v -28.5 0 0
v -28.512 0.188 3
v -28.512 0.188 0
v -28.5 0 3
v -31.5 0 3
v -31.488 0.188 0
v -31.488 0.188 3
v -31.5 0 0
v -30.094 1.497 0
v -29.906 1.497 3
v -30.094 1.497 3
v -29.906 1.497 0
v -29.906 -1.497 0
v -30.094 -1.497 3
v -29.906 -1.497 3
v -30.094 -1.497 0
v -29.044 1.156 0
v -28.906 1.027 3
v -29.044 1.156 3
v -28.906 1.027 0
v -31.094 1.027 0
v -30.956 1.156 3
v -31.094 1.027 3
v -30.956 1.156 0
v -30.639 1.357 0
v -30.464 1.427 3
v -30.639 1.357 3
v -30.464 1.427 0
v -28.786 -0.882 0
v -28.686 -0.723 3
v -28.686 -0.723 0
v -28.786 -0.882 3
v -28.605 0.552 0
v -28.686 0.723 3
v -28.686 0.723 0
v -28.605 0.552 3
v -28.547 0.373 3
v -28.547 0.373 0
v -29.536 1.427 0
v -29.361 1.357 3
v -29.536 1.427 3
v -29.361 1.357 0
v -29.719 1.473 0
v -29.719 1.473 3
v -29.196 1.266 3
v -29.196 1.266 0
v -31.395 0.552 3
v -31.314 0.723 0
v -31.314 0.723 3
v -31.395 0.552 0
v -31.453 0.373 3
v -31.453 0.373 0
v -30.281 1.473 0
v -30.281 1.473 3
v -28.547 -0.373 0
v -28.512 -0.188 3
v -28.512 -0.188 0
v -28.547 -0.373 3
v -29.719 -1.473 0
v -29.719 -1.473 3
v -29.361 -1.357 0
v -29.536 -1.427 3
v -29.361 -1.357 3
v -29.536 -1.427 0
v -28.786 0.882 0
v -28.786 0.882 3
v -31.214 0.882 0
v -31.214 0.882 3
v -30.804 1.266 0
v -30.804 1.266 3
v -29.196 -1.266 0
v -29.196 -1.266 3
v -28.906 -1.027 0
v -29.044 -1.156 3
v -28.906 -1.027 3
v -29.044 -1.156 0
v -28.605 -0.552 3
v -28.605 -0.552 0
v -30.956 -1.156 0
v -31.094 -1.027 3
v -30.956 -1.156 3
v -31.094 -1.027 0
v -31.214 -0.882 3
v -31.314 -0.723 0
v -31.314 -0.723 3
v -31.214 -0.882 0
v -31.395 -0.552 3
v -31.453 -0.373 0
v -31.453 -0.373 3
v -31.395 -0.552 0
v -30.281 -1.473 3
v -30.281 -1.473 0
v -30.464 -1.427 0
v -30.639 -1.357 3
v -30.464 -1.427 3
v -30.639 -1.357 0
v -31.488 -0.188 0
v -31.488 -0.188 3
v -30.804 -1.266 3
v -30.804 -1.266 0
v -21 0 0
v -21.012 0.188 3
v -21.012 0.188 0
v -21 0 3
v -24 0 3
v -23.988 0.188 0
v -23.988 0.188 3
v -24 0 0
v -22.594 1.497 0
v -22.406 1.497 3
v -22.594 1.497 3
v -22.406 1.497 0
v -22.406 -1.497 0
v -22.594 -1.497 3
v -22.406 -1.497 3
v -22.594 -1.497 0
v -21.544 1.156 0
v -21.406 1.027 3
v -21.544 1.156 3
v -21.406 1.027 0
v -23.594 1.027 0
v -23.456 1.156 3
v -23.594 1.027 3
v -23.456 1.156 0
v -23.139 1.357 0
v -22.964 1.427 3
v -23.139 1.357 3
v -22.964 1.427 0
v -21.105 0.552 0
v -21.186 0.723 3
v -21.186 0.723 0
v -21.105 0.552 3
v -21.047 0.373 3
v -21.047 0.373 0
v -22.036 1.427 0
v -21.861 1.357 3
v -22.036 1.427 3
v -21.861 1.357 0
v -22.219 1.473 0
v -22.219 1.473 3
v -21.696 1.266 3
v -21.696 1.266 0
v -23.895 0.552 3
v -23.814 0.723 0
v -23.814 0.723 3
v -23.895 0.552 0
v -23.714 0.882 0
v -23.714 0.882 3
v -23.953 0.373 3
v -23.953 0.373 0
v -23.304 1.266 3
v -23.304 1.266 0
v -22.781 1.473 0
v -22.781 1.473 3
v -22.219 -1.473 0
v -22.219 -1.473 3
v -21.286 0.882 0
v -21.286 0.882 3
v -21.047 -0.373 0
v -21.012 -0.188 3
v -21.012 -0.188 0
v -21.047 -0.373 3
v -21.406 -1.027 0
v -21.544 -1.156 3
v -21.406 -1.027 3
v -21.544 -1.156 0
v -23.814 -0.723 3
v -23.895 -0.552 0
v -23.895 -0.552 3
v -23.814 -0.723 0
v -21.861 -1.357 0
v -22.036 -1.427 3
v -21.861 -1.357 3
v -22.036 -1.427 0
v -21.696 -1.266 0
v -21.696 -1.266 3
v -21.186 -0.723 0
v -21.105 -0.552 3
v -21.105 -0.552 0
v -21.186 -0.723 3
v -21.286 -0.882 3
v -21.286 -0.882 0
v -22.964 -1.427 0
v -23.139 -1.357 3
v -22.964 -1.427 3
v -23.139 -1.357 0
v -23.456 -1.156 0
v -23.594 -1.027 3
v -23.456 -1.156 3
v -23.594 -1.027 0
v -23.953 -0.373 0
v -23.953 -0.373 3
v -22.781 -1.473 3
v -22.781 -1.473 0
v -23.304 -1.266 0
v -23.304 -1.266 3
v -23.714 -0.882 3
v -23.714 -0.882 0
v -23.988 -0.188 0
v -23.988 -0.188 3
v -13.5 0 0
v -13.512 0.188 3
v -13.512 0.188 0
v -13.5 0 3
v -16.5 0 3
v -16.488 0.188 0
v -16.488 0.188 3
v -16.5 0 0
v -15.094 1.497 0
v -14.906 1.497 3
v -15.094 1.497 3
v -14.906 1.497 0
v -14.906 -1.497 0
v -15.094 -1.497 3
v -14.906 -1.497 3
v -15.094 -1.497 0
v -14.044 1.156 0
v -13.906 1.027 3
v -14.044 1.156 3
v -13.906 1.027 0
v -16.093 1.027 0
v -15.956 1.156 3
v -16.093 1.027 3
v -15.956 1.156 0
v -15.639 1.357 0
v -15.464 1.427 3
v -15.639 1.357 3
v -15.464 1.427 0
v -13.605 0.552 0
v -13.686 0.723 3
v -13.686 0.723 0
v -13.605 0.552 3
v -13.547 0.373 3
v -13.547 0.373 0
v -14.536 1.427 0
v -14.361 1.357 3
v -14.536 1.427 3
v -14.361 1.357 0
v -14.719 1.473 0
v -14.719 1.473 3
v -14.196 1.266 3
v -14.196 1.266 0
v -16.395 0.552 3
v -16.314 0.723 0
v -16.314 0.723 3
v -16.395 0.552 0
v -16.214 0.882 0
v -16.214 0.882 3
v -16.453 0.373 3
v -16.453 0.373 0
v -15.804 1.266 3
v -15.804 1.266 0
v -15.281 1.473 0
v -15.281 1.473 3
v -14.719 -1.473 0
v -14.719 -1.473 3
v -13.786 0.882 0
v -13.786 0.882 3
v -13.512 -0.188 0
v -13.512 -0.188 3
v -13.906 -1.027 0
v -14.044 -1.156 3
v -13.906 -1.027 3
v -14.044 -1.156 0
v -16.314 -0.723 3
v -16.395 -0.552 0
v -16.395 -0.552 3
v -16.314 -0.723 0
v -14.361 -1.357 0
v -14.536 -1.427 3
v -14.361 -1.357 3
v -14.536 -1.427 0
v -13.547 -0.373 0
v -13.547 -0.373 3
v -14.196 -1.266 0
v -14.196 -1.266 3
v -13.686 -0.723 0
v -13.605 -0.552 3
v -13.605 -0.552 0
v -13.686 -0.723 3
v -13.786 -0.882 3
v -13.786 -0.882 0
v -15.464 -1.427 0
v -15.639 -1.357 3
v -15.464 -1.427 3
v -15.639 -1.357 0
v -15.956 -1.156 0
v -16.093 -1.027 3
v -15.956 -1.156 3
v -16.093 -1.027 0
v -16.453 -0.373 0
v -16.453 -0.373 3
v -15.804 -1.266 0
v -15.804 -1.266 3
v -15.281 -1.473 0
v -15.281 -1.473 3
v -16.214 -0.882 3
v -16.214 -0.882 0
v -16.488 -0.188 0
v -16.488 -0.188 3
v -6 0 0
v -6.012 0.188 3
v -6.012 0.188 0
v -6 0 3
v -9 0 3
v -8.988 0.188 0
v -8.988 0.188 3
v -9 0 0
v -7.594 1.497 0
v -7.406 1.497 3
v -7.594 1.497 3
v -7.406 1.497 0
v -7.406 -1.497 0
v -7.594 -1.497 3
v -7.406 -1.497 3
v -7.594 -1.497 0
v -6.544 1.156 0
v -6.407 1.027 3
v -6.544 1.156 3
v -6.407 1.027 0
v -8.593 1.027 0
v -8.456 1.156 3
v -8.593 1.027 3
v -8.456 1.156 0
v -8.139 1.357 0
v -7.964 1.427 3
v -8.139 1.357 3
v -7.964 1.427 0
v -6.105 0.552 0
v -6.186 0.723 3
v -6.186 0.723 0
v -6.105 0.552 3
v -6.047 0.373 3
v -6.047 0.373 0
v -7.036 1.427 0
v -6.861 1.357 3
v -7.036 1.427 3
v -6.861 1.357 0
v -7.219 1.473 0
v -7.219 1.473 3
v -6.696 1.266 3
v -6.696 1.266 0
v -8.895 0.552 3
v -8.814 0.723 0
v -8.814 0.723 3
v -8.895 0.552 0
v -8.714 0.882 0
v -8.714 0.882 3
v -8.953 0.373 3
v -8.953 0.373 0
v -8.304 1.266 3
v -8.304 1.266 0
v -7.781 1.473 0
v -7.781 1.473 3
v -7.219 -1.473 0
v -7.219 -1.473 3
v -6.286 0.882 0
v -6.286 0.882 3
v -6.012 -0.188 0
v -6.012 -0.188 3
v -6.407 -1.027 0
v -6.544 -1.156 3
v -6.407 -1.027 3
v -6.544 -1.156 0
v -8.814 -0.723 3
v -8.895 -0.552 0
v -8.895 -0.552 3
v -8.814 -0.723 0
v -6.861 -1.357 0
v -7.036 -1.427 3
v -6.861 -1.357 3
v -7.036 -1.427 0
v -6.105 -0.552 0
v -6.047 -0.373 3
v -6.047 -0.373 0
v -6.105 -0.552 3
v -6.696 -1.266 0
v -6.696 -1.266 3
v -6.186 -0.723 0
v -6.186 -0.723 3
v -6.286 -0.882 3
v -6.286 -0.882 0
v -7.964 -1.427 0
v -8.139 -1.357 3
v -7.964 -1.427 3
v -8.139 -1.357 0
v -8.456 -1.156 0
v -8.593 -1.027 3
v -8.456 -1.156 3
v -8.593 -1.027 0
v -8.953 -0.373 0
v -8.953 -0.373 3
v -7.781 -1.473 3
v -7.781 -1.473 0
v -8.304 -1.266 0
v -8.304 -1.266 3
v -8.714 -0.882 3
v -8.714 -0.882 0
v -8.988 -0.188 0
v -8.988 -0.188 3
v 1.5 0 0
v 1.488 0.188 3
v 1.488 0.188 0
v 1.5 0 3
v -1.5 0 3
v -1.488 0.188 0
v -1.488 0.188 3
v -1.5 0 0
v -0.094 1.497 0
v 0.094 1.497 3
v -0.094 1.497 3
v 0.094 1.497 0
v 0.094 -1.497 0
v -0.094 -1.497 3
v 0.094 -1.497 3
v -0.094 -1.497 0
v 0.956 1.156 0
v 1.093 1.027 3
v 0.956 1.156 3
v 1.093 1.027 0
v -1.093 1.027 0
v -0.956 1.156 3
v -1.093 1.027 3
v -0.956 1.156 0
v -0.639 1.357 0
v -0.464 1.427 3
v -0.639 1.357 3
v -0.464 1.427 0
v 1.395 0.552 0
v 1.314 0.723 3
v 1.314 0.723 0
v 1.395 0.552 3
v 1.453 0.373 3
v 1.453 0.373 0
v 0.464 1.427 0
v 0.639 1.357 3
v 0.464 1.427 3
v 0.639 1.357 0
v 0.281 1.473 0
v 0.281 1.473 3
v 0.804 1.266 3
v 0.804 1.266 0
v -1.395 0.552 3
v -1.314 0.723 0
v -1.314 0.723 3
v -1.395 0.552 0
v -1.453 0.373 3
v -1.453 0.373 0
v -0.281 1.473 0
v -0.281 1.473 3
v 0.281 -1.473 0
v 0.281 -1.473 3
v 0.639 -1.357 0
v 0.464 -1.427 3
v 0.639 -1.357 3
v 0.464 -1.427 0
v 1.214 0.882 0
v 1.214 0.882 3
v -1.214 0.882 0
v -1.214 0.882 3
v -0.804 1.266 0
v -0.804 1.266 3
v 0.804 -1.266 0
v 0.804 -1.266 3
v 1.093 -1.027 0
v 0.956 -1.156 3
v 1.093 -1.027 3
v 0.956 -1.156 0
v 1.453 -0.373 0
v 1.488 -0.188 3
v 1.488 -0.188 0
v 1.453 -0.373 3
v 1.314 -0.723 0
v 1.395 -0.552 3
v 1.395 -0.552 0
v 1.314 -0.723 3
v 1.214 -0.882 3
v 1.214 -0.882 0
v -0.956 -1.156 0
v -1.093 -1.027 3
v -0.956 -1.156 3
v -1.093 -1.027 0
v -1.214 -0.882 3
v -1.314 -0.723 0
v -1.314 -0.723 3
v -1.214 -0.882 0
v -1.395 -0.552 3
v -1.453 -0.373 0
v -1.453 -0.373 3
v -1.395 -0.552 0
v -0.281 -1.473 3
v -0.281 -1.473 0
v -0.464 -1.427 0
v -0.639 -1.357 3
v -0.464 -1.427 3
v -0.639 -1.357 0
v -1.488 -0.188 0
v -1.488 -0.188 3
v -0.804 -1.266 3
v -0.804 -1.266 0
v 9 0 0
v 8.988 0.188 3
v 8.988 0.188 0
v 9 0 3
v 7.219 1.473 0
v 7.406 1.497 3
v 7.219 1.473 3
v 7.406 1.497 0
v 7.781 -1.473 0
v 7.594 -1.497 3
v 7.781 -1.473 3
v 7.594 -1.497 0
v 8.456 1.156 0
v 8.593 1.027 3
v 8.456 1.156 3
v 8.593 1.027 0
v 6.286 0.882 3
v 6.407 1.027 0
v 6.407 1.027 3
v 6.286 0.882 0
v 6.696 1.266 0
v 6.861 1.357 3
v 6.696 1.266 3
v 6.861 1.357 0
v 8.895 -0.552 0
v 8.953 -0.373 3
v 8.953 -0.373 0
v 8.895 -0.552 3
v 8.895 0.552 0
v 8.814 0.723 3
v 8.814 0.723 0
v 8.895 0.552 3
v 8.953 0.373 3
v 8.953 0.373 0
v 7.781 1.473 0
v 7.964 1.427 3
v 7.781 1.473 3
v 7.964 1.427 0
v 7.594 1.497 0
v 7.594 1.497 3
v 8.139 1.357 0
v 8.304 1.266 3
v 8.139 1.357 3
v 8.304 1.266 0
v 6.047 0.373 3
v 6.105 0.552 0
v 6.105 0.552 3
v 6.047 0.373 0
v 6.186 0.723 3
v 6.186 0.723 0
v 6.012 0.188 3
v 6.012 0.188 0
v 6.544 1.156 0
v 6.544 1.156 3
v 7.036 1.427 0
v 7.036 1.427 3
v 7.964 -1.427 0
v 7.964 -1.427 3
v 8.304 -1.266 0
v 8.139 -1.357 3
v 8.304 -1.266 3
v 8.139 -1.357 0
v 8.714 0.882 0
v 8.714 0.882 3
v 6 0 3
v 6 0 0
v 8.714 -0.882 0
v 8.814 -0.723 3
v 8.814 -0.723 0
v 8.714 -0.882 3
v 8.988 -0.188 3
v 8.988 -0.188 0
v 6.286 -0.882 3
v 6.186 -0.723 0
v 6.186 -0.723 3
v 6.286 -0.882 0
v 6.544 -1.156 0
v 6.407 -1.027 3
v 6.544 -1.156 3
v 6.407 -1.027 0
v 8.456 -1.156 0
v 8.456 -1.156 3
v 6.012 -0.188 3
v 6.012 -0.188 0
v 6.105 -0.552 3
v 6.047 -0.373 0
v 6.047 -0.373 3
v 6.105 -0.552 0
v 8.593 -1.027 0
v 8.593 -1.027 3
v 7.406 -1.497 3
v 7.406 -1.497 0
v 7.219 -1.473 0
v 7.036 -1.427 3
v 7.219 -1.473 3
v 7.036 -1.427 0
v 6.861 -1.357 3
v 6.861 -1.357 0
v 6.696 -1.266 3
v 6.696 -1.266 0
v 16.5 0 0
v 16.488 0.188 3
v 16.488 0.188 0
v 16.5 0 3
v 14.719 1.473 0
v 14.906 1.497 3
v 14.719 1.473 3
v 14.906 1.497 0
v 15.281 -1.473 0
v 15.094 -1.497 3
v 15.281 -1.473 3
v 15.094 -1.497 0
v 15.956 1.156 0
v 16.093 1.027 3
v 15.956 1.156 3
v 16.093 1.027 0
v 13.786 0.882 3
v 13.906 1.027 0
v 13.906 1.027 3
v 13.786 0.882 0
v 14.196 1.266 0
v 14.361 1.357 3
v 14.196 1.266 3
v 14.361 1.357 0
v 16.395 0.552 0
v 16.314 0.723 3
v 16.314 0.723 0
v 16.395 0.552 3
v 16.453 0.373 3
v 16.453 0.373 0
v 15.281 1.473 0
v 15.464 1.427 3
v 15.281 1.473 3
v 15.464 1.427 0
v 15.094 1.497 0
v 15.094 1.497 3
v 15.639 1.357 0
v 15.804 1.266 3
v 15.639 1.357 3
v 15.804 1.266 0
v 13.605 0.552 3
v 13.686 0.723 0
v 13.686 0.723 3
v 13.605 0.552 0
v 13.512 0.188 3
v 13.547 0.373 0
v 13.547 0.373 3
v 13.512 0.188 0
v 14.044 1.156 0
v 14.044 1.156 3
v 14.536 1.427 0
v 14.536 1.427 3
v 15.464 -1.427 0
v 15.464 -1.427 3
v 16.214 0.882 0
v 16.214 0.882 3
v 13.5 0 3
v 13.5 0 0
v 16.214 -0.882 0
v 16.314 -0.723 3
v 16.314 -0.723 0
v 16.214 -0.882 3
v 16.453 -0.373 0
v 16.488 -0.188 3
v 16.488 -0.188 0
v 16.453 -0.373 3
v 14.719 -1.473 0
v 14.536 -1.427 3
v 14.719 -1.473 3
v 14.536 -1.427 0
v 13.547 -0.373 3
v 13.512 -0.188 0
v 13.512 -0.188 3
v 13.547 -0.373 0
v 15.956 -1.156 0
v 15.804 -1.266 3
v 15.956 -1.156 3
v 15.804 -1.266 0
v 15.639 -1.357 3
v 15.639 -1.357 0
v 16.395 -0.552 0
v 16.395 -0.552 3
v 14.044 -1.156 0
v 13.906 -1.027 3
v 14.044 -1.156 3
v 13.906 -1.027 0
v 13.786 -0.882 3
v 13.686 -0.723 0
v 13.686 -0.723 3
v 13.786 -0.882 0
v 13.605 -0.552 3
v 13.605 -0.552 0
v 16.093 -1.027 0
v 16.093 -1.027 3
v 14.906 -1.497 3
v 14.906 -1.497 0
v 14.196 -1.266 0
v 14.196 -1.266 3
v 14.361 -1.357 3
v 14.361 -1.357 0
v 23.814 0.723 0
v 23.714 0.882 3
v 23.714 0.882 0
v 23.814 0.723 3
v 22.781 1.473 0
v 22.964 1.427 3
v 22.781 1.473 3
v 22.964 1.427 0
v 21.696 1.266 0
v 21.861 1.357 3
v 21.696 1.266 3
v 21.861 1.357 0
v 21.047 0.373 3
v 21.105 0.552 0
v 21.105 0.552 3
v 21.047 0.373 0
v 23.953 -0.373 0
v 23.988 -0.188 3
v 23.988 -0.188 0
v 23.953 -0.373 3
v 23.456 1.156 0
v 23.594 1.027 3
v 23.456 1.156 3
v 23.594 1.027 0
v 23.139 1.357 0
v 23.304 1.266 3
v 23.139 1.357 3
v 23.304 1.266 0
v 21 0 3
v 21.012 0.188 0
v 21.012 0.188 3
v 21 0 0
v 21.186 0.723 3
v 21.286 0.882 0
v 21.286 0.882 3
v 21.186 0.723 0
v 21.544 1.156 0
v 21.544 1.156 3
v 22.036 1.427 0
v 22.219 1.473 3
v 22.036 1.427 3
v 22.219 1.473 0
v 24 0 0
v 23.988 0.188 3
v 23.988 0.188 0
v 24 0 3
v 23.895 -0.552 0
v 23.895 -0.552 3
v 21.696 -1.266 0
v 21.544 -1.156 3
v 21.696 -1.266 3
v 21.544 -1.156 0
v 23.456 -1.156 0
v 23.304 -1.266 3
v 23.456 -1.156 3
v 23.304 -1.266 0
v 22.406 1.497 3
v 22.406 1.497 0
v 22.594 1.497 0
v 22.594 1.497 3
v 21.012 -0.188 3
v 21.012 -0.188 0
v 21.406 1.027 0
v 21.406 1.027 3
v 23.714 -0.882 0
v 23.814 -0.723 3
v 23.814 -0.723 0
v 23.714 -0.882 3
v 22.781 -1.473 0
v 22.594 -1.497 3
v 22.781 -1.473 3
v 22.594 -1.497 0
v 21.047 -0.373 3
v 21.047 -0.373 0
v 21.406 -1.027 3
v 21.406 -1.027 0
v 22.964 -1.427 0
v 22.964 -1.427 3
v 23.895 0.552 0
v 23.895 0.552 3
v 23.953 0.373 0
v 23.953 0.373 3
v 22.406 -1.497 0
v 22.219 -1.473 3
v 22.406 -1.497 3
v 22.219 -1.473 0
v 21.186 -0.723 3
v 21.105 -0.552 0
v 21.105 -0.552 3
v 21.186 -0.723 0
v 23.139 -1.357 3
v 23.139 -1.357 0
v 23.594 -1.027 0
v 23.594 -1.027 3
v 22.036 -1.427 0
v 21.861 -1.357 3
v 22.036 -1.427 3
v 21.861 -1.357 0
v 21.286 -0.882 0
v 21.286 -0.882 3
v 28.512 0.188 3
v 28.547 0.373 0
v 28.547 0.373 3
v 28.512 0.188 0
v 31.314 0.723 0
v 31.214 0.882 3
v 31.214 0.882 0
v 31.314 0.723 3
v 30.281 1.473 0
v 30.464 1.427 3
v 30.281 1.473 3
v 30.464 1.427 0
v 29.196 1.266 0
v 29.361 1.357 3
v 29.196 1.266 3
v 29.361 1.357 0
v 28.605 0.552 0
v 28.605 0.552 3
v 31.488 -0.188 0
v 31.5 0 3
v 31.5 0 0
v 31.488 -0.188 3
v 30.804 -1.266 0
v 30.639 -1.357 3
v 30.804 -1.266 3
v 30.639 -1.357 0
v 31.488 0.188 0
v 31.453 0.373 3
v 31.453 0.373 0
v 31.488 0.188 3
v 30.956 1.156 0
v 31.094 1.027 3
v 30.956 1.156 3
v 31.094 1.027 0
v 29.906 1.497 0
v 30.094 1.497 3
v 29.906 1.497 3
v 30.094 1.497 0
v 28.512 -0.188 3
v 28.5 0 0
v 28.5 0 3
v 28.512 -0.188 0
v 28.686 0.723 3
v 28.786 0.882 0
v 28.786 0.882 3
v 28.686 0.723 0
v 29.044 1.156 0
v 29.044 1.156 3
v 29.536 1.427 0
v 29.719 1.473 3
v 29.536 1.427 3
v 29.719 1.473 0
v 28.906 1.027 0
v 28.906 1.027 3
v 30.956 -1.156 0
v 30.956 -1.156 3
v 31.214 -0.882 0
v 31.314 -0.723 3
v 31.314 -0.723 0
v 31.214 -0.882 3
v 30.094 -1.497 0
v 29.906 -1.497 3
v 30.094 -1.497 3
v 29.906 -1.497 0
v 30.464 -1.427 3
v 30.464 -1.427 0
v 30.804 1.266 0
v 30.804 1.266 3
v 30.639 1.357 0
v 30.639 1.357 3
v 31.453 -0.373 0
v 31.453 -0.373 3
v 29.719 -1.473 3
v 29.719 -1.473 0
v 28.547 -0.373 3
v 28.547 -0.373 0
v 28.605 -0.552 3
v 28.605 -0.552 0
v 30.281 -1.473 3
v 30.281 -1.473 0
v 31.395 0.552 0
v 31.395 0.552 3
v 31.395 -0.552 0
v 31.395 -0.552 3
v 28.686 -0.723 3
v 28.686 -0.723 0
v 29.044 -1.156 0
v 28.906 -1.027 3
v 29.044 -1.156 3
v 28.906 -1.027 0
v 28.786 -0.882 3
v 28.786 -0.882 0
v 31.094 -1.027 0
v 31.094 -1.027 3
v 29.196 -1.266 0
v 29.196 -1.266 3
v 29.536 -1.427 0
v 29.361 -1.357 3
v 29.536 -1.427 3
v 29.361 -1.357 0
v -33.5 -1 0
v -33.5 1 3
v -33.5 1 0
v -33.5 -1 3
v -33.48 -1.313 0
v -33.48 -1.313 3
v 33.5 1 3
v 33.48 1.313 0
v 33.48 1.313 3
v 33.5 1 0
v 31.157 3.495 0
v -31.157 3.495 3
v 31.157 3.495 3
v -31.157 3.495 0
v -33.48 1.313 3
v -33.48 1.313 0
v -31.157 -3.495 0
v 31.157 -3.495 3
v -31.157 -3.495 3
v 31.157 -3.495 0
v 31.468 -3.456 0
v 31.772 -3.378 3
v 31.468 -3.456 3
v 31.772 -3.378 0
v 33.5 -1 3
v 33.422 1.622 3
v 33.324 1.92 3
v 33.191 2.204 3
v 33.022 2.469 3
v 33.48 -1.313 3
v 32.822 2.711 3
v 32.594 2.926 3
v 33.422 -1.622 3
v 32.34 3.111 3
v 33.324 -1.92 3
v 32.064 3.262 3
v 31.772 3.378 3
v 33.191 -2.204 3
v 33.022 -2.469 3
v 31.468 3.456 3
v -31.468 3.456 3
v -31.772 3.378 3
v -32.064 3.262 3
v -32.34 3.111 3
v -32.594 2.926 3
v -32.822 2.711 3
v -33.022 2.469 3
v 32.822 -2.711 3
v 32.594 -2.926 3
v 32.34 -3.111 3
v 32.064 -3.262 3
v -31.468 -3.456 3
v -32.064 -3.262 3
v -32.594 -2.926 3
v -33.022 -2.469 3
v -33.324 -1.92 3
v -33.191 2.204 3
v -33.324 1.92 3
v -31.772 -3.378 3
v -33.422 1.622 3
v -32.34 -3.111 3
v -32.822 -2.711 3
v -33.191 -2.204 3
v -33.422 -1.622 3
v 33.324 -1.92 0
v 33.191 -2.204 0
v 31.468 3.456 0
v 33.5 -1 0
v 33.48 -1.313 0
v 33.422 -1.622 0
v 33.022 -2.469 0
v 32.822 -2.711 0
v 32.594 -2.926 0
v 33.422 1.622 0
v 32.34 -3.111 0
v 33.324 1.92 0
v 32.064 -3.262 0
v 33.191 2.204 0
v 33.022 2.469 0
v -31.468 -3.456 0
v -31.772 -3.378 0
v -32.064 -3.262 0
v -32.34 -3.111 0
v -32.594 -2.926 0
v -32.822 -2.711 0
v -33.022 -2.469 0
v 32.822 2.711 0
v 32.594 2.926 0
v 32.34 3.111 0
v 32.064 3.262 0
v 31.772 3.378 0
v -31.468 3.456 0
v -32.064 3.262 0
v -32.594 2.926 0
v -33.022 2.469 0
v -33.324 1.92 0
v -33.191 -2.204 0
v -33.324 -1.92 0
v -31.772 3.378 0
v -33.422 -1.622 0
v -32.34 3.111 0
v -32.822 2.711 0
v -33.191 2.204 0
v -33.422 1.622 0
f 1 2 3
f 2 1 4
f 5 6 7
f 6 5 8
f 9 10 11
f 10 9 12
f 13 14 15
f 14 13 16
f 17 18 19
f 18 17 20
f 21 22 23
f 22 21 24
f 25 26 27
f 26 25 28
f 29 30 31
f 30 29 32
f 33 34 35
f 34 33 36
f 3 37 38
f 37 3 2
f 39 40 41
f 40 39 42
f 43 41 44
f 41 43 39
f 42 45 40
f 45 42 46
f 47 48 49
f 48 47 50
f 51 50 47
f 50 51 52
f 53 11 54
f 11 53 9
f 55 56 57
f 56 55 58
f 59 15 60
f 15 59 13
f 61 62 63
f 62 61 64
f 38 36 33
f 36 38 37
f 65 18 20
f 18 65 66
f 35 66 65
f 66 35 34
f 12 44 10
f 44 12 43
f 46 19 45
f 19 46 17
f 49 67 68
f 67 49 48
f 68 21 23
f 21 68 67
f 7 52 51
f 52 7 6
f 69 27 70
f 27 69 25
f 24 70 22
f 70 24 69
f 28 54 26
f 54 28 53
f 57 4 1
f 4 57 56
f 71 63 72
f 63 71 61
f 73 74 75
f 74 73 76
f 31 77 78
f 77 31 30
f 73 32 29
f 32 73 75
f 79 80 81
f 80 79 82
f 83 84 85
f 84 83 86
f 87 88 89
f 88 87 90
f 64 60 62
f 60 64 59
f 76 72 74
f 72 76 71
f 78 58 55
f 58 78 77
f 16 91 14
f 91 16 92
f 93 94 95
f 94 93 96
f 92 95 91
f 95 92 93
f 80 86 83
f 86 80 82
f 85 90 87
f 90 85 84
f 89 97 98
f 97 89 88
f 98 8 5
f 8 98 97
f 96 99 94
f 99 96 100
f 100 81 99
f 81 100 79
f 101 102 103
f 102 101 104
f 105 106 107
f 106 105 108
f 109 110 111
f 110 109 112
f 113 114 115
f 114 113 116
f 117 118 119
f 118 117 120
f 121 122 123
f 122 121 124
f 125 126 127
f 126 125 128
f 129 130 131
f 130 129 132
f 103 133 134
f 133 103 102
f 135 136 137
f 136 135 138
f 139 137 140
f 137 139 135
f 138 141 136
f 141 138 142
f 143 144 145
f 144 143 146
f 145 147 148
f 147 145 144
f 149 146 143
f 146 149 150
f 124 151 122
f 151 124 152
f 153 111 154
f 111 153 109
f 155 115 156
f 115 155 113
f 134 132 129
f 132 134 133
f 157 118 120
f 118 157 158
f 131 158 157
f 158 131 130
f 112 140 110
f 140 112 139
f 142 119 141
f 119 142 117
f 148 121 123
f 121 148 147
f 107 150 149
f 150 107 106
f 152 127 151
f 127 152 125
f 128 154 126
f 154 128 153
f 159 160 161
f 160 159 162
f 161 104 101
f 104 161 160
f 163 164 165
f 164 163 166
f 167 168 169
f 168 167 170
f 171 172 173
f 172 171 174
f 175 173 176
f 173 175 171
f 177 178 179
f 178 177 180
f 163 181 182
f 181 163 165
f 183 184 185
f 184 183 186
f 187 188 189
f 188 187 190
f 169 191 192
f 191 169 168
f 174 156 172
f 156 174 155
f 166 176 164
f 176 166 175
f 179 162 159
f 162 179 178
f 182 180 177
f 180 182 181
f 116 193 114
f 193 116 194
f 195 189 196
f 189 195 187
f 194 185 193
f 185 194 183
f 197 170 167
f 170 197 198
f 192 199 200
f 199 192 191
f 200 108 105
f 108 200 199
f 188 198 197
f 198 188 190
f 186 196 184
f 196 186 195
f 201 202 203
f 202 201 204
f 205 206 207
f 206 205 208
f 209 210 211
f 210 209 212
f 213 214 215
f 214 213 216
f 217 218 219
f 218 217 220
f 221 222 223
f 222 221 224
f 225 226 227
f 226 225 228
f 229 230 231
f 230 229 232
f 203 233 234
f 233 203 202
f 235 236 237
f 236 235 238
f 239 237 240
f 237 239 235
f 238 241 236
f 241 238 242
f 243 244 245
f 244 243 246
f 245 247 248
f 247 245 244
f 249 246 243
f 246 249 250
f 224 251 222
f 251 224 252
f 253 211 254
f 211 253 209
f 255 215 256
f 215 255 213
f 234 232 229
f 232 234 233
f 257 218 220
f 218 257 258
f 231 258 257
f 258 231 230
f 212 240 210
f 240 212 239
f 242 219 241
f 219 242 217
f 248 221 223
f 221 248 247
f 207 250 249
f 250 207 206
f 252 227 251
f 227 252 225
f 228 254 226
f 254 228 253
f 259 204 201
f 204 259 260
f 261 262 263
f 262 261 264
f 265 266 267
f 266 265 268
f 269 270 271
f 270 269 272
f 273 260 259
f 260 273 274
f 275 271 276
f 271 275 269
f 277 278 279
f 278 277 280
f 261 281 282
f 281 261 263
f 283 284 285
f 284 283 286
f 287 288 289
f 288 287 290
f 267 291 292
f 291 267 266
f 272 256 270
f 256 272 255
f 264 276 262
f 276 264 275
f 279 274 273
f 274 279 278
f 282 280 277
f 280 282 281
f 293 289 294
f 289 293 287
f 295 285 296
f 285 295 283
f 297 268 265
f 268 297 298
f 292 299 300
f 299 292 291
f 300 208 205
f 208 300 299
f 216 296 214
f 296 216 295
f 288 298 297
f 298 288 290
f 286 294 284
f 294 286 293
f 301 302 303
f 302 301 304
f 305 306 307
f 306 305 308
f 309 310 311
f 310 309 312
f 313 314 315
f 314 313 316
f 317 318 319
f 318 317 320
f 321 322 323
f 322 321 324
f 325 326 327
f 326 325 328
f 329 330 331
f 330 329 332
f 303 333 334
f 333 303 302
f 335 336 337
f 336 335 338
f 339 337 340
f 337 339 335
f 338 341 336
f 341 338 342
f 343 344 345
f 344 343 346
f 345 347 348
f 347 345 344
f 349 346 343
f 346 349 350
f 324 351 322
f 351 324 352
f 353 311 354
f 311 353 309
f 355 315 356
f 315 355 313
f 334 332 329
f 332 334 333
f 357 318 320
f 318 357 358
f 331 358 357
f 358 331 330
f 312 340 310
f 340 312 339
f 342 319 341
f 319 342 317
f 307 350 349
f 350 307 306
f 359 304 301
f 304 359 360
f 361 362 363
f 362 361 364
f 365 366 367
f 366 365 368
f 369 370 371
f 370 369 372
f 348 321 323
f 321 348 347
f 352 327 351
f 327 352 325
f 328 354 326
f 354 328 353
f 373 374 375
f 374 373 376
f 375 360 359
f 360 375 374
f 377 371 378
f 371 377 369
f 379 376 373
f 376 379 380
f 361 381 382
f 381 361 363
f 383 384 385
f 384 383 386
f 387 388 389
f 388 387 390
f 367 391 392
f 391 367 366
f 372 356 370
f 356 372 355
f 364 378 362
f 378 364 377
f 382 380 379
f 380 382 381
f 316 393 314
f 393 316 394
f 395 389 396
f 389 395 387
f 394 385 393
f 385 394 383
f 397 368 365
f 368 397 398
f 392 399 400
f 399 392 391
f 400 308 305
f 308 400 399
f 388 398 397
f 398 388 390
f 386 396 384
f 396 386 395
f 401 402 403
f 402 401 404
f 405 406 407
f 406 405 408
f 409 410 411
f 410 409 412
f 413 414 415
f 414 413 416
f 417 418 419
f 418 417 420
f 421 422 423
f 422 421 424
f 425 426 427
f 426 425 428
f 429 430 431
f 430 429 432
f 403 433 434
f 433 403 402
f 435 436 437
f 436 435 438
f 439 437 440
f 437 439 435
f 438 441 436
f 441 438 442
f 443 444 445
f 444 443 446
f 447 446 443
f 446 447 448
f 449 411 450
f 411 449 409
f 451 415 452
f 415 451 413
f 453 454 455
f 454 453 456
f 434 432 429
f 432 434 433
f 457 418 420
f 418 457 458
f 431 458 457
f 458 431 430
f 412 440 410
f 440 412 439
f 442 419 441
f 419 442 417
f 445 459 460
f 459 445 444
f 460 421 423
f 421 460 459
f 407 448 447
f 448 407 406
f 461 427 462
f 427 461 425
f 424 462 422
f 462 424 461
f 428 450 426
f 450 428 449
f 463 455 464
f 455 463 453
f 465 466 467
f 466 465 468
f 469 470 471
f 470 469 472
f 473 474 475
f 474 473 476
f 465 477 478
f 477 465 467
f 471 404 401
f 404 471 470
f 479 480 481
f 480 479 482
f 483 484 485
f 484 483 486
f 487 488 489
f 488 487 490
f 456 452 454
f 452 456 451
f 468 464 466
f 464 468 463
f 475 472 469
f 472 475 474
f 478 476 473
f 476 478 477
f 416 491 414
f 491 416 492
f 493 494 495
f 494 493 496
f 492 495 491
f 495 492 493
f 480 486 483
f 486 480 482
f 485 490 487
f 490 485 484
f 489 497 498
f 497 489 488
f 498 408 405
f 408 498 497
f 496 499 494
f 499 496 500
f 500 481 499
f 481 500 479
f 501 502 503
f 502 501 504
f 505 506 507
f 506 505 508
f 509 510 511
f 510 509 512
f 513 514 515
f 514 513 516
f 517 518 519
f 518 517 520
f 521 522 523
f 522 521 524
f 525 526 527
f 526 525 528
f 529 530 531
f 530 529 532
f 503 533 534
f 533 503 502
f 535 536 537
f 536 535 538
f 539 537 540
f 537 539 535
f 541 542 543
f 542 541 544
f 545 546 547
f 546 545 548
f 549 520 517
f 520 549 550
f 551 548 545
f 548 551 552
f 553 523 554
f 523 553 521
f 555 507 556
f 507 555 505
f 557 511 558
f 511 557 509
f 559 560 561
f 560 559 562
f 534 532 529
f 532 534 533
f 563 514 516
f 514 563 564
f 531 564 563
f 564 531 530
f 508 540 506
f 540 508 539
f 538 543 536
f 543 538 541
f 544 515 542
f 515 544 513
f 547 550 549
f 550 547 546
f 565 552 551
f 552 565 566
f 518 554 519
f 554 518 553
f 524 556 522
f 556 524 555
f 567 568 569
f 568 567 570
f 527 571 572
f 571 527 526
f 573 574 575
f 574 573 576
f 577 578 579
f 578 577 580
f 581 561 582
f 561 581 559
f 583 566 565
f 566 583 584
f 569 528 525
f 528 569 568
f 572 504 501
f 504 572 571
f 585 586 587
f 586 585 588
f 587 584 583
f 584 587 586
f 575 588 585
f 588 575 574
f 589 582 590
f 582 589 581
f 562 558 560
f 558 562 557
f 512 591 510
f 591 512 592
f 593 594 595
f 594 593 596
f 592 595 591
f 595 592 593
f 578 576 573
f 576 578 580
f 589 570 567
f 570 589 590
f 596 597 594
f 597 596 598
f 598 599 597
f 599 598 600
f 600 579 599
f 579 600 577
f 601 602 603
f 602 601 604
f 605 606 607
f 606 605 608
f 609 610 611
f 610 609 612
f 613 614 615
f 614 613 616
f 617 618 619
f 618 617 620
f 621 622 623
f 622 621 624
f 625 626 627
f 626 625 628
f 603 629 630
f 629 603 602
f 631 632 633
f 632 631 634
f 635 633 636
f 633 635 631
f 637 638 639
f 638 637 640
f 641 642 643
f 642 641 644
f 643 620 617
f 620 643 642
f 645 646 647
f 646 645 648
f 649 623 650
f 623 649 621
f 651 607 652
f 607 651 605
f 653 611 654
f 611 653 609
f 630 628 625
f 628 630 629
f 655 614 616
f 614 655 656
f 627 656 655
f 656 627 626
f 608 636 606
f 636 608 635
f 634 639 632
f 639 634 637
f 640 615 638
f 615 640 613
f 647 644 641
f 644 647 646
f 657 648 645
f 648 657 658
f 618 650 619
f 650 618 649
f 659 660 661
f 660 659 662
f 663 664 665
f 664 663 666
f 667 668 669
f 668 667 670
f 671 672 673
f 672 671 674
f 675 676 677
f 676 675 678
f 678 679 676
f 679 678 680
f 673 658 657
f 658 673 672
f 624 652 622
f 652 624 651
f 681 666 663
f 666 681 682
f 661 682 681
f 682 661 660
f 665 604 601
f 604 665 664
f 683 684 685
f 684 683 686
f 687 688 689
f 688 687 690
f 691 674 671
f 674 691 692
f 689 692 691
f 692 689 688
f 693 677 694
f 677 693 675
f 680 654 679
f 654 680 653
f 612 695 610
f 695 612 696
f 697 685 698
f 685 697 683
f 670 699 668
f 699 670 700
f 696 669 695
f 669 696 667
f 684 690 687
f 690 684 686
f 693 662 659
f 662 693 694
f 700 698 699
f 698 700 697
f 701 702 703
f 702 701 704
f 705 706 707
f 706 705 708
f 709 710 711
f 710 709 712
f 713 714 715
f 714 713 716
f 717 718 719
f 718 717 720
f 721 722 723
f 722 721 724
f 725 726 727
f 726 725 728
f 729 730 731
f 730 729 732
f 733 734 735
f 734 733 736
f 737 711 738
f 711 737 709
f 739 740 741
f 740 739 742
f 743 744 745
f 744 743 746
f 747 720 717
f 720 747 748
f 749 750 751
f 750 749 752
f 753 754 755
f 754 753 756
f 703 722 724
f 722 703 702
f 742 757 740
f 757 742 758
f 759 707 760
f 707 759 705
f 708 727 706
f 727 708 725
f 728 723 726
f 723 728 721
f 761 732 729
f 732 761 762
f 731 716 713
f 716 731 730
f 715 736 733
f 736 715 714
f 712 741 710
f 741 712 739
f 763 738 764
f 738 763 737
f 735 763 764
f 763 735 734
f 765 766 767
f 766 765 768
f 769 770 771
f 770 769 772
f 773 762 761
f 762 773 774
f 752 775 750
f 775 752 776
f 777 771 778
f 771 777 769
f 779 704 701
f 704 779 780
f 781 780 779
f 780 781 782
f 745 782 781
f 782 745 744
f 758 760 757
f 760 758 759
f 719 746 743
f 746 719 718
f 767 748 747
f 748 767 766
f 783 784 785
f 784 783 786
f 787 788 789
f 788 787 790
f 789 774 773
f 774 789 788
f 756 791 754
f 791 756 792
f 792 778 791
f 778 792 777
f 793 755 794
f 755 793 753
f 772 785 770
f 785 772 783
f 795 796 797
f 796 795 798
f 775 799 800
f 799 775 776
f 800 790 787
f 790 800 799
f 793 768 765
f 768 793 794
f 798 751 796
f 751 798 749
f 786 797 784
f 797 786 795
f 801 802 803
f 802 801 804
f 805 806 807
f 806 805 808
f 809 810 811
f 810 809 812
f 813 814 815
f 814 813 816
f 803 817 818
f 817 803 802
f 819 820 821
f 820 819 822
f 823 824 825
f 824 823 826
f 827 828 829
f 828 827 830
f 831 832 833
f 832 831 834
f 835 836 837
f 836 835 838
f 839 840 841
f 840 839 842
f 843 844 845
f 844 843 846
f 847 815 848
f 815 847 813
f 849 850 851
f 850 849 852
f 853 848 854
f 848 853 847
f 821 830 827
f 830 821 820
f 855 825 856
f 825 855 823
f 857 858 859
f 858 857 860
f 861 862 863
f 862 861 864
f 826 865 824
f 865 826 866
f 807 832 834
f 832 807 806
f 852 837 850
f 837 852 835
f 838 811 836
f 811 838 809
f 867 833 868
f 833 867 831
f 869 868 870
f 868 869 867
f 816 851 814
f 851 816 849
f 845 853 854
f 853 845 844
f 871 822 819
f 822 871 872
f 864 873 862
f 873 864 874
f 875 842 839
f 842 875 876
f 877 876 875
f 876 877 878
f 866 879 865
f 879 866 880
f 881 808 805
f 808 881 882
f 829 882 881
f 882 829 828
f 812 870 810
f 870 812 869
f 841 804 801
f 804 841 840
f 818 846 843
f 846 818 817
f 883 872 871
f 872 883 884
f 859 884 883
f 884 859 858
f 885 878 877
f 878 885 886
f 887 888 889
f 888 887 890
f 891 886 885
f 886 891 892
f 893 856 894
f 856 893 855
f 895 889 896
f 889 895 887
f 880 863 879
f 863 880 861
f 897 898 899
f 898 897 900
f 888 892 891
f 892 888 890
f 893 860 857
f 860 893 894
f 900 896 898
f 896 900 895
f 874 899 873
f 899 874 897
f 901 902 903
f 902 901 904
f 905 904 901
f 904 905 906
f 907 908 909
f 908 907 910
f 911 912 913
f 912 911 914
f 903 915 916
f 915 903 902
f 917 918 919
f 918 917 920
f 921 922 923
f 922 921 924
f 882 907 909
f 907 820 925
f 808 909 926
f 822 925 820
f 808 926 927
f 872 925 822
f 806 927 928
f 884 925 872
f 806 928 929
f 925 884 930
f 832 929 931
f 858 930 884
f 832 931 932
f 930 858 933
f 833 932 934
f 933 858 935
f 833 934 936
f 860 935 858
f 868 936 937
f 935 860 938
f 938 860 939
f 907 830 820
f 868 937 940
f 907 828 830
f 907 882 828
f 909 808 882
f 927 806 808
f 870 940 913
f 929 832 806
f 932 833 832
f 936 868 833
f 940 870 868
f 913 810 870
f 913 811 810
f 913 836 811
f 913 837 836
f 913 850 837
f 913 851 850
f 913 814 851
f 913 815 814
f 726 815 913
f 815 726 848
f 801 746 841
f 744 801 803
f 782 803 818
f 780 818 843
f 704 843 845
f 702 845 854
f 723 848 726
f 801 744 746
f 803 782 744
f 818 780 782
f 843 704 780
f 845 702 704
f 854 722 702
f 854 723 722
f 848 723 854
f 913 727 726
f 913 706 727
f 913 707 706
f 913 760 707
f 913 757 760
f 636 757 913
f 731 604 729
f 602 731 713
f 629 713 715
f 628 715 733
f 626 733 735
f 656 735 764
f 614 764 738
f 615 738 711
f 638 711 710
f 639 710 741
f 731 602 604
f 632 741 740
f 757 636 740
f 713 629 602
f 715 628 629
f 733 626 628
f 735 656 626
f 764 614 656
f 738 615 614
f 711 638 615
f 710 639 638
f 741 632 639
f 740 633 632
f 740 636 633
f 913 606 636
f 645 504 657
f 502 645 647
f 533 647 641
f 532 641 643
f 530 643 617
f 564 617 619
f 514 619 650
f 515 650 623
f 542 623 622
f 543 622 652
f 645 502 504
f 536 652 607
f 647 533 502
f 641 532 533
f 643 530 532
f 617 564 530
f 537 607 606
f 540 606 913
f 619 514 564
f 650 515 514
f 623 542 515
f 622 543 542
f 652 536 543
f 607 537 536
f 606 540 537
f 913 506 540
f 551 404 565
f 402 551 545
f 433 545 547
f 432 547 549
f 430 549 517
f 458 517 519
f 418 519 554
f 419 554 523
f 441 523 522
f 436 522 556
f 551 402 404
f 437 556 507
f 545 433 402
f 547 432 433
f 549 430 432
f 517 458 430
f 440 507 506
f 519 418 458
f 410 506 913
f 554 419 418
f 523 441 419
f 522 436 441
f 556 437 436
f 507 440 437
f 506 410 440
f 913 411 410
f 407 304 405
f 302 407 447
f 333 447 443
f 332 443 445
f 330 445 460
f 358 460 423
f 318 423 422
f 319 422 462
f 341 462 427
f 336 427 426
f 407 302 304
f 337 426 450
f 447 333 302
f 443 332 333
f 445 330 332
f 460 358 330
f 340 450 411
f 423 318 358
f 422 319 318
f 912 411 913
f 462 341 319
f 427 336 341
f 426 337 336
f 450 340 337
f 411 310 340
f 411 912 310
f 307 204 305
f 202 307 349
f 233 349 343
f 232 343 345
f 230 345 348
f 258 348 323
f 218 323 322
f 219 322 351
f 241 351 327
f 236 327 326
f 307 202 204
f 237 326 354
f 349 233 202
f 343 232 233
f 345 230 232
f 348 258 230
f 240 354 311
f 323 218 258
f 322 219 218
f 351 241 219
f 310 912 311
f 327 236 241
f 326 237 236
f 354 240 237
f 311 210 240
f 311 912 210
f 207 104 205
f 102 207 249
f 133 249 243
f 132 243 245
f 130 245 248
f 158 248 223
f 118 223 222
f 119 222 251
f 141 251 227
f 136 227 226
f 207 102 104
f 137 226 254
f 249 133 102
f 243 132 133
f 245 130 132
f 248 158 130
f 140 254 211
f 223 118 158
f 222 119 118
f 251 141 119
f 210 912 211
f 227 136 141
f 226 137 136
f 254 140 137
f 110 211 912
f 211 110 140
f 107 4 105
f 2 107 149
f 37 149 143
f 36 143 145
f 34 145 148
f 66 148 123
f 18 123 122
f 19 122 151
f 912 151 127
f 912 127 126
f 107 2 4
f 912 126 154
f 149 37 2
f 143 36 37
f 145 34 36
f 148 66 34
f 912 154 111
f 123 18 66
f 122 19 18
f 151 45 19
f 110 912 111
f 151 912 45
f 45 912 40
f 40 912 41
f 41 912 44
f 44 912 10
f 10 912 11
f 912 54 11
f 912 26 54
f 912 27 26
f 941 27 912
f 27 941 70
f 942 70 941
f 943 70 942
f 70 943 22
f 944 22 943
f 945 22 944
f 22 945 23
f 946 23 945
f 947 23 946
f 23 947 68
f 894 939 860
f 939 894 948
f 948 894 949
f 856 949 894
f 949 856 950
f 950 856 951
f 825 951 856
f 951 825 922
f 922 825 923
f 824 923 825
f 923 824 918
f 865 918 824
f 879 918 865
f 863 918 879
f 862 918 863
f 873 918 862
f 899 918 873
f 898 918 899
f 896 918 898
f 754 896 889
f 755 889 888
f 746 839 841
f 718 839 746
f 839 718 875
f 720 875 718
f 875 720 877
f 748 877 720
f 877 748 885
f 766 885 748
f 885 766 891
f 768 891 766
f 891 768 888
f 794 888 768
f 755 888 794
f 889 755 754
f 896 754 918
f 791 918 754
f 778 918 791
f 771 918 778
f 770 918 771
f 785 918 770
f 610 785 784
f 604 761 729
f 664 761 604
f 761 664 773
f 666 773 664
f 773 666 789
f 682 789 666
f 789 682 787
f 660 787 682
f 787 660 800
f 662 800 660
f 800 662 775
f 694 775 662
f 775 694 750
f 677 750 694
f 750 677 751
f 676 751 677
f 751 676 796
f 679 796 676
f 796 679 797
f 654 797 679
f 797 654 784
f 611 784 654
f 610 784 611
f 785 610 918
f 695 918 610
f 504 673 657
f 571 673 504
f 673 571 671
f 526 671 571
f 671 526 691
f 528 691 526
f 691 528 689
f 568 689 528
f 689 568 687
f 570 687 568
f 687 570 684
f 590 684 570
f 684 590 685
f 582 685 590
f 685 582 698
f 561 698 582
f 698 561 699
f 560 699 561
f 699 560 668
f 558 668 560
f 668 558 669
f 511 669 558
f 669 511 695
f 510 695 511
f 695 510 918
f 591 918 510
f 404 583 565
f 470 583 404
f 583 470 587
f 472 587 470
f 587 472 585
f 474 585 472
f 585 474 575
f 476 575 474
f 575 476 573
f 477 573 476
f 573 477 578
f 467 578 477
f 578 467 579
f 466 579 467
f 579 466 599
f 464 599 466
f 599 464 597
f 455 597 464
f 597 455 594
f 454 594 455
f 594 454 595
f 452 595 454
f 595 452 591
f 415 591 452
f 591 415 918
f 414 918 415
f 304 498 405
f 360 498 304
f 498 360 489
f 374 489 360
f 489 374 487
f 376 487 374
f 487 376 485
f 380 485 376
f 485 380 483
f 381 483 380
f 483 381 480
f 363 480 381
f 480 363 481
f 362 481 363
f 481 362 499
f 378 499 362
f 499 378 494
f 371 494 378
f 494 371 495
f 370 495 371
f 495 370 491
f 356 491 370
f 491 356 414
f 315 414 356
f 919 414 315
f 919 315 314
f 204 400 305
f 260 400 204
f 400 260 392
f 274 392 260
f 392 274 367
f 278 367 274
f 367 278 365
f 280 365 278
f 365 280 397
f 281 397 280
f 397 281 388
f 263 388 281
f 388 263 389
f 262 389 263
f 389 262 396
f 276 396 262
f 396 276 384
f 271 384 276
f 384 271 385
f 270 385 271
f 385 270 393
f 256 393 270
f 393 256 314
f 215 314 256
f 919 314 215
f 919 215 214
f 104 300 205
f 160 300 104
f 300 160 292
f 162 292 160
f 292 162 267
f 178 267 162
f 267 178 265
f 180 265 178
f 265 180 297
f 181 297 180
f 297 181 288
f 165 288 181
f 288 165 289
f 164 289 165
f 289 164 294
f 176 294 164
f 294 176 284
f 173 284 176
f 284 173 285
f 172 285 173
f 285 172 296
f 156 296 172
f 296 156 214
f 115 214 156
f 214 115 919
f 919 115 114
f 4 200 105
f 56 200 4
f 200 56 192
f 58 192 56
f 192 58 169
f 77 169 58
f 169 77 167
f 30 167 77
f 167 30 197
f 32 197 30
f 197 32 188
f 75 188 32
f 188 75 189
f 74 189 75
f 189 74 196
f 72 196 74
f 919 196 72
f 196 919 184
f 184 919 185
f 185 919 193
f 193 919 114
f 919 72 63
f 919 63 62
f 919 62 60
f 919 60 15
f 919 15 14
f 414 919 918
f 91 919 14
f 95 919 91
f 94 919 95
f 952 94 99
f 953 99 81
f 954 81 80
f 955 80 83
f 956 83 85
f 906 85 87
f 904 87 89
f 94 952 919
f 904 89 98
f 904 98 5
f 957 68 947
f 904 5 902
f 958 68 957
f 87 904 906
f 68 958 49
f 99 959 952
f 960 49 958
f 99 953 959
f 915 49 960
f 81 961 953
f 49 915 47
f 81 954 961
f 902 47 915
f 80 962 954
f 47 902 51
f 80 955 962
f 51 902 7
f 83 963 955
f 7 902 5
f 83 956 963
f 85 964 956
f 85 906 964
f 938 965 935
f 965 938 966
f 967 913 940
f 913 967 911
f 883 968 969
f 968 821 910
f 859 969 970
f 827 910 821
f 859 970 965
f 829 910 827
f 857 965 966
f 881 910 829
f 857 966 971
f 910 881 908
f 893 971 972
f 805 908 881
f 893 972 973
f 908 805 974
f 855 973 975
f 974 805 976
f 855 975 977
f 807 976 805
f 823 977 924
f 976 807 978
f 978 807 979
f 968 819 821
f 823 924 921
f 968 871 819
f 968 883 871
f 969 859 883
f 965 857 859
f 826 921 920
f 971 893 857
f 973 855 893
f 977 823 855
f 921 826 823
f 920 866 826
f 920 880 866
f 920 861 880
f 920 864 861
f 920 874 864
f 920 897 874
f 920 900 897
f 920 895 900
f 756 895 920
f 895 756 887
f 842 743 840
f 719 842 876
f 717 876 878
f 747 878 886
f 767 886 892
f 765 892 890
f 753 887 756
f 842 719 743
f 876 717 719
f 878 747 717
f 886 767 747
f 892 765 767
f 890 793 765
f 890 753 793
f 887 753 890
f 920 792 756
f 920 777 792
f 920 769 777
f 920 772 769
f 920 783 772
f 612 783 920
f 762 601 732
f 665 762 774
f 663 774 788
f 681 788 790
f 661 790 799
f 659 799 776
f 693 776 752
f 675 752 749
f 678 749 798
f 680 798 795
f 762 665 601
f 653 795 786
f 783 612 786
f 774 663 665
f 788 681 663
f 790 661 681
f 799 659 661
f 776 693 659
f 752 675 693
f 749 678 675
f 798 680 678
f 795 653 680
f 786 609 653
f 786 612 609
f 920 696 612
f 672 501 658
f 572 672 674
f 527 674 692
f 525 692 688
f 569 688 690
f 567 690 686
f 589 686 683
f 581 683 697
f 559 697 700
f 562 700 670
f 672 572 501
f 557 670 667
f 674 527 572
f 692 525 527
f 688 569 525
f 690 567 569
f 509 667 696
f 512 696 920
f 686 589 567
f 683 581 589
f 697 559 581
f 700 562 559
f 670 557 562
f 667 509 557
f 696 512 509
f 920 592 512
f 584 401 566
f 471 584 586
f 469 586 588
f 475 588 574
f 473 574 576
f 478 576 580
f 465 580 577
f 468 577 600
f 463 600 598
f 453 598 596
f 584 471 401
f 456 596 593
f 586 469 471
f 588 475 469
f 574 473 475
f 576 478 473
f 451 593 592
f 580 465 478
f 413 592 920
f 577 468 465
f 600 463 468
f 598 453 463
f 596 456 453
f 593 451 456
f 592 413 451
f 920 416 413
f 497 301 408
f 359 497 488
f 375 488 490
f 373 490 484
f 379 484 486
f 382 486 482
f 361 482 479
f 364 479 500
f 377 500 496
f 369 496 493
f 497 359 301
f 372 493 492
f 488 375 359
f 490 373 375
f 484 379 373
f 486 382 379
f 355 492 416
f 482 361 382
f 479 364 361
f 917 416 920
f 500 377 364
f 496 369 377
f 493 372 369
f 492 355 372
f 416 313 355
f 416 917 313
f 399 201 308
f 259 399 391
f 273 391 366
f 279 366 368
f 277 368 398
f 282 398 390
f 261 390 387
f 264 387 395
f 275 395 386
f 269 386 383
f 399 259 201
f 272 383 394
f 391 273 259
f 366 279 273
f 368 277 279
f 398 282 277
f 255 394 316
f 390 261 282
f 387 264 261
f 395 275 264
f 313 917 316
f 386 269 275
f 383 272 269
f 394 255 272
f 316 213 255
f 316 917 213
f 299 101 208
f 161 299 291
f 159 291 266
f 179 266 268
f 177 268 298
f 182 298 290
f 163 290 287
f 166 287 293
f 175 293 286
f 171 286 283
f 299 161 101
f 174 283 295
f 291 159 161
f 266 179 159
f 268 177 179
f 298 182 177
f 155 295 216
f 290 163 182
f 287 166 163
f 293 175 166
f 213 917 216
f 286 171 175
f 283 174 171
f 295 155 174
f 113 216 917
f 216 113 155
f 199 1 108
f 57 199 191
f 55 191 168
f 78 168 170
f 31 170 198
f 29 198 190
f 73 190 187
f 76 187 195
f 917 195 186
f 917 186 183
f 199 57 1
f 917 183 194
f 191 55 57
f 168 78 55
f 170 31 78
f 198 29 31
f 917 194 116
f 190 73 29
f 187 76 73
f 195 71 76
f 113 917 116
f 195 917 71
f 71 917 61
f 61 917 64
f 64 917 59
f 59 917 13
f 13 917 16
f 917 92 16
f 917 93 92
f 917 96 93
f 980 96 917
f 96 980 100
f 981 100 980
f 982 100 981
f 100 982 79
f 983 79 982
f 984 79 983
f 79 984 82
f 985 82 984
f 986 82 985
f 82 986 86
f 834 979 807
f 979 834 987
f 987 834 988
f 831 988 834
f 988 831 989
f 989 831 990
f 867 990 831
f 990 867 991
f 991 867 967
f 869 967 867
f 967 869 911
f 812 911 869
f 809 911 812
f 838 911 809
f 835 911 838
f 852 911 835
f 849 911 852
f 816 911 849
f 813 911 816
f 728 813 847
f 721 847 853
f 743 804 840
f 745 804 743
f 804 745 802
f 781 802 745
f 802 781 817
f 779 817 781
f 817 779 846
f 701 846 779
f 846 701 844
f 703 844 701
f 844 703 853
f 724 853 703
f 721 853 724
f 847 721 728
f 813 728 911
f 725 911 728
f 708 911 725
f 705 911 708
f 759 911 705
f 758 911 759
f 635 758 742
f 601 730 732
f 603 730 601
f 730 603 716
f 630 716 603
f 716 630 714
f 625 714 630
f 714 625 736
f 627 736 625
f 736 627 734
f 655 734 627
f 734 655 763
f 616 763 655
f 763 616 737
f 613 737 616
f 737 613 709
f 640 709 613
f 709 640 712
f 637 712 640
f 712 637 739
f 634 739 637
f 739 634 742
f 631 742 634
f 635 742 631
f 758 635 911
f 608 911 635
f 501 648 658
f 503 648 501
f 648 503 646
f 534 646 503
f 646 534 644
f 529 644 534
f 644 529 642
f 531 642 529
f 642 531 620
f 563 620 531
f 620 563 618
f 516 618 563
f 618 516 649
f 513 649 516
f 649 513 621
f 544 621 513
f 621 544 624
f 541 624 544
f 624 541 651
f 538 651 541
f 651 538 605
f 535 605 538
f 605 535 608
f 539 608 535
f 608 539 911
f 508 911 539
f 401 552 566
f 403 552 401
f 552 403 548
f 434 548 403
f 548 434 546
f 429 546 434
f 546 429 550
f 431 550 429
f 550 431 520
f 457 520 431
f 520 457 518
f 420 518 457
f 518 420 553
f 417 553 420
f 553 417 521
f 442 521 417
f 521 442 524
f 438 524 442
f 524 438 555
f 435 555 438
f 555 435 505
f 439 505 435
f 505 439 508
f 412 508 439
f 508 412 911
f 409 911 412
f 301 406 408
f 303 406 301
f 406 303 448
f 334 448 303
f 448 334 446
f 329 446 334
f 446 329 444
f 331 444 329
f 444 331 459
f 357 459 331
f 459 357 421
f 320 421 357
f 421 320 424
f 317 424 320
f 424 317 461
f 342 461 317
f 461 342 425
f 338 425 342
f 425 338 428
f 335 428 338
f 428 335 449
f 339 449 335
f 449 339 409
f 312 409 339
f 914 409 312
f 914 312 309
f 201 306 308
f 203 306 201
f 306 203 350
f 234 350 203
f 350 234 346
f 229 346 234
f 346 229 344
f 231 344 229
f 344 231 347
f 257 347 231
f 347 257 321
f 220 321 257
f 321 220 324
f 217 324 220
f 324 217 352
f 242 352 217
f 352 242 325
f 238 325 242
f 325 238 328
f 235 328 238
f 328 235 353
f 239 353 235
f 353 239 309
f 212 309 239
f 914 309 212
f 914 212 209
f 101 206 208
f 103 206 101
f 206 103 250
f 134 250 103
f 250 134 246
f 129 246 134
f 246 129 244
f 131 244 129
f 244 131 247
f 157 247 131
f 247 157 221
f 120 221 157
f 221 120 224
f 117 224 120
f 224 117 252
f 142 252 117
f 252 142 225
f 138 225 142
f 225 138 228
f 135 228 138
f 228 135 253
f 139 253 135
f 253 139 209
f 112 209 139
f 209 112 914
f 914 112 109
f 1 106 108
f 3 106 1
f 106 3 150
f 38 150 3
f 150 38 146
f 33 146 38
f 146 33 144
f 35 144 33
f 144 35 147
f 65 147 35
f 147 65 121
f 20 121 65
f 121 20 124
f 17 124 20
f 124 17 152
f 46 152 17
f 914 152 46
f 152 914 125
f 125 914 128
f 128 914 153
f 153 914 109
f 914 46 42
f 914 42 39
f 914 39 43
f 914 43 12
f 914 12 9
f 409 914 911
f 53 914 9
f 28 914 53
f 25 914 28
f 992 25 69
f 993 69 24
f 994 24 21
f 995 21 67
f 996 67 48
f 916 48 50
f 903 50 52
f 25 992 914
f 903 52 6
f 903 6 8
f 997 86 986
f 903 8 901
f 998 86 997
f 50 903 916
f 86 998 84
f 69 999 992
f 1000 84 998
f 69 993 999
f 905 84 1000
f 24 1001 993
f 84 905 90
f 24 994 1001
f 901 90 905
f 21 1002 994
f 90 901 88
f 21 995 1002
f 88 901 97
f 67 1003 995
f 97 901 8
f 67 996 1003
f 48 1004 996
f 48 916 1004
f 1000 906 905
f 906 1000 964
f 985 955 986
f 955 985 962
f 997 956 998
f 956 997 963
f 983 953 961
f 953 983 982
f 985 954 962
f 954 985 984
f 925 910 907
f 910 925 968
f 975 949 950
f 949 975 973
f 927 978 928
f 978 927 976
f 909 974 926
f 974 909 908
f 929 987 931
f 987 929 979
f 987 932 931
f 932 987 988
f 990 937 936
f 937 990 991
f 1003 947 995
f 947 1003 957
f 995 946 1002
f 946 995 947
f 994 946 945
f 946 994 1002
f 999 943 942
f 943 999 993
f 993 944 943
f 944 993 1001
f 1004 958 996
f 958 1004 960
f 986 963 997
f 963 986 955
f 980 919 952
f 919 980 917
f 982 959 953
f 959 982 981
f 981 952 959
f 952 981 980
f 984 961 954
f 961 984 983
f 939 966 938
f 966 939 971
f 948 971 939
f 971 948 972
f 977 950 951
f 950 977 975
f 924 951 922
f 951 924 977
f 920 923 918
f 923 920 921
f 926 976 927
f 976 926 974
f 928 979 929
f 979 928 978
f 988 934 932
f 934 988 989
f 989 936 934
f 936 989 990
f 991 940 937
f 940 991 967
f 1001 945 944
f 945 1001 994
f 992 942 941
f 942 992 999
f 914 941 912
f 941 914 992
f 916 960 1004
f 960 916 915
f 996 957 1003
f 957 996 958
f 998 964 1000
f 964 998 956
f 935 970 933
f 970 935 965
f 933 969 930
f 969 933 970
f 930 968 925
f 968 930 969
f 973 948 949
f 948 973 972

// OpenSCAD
$fn = 50;


difference() {
	union() {
		translate(v = [0, 0, 0]) {
			rotate(a = [0, 0, 0]) {
				hull() {
					translate(v = [-31.0000000000, 1.0000000000, 0]) {
						rotate(a = [0, 0, 0]) {
							translate(v = [0, 0, 0]) {
								rotate(a = [0, 0, 0]) {
									cylinder(h = 3, r = 2.5000000000);
								}
							}
						}
					}
					translate(v = [31.0000000000, 1.0000000000, 0]) {
						rotate(a = [0, 0, 0]) {
							translate(v = [0, 0, 0]) {
								rotate(a = [0, 0, 0]) {
									cylinder(h = 3, r = 2.5000000000);
								}
							}
						}
					}
					translate(v = [-31.0000000000, -1.0000000000, 0]) {
						rotate(a = [0, 0, 0]) {
							translate(v = [0, 0, 0]) {
								rotate(a = [0, 0, 0]) {
									cylinder(h = 3, r = 2.5000000000);
								}
							}
						}
					}
					translate(v = [31.0000000000, -1.0000000000, 0]) {
						rotate(a = [0, 0, 0]) {
							translate(v = [0, 0, 0]) {
								rotate(a = [0, 0, 0]) {
									cylinder(h = 3, r = 2.5000000000);
								}
							}
						}
					}
				}
			}
		}
	}
	union() {
		translate(v = [-30.0000000000, 0.0000000000, 0]) {
			rotate(a = [0, 0, 0]) {
				translate(v = [0, 0, -50]) {
					rotate(a = [0, 0, 0]) {
						cylinder(h = 100, r = 1.5000000000);
					}
				}
			}
		}
		translate(v = [-22.5000000000, 0.0000000000, 0]) {
			rotate(a = [0, 0, 0]) {
				translate(v = [0, 0, -50]) {
					rotate(a = [0, 0, 0]) {
						cylinder(h = 100, r = 1.5000000000);
					}
				}
			}
		}
		translate(v = [-15.0000000000, 0.0000000000, 0]) {
			rotate(a = [0, 0, 0]) {
				translate(v = [0, 0, -50]) {
					rotate(a = [0, 0, 0]) {
						cylinder(h = 100, r = 1.5000000000);
					}
				}
			}
		}
		translate(v = [-7.5000000000, 0.0000000000, 0]) {
			rotate(a = [0, 0, 0]) {
				translate(v = [0, 0, -50]) {
					rotate(a = [0, 0, 0]) {
						cylinder(h = 100, r = 1.5000000000);
					}
				}
			}
		}
		translate(v = [0.0000000000, 0.0000000000, 0]) {
			rotate(a = [0, 0, 0]) {
				translate(v = [0, 0, -50]) {
					rotate(a = [0, 0, 0]) {
						cylinder(h = 100, r = 1.5000000000);
					}
				}
			}
		}
		translate(v = [7.5000000000, 0.0000000000, 0]) {
			rotate(a = [0, 0, 0]) {
				translate(v = [0, 0, -50]) {
					rotate(a = [0, 0, 0]) {
						cylinder(h = 100, r = 1.5000000000);
					}
				}
			}
		}
		translate(v = [15.0000000000, 0.0000000000, 0]) {
			rotate(a = [0, 0, 0]) {
				translate(v = [0, 0, -50]) {
					rotate(a = [0, 0, 0]) {
						cylinder(h = 100, r = 1.5000000000);
					}
				}
			}
		}
		translate(v = [22.5000000000, 0.0000000000, 0]) {
			rotate(a = [0, 0, 0]) {
				translate(v = [0, 0, -50]) {
					rotate(a = [0, 0, 0]) {
						cylinder(h = 100, r = 1.5000000000);
					}
				}
			}
		}
		translate(v = [30.0000000000, 0.0000000000, 0]) {
			rotate(a = [0, 0, 0]) {
				translate(v = [0, 0, -50]) {
					rotate(a = [0, 0, 0]) {
						cylinder(h = 100, r = 1.5000000000);
					}
				}
			}
		}
	}
}
